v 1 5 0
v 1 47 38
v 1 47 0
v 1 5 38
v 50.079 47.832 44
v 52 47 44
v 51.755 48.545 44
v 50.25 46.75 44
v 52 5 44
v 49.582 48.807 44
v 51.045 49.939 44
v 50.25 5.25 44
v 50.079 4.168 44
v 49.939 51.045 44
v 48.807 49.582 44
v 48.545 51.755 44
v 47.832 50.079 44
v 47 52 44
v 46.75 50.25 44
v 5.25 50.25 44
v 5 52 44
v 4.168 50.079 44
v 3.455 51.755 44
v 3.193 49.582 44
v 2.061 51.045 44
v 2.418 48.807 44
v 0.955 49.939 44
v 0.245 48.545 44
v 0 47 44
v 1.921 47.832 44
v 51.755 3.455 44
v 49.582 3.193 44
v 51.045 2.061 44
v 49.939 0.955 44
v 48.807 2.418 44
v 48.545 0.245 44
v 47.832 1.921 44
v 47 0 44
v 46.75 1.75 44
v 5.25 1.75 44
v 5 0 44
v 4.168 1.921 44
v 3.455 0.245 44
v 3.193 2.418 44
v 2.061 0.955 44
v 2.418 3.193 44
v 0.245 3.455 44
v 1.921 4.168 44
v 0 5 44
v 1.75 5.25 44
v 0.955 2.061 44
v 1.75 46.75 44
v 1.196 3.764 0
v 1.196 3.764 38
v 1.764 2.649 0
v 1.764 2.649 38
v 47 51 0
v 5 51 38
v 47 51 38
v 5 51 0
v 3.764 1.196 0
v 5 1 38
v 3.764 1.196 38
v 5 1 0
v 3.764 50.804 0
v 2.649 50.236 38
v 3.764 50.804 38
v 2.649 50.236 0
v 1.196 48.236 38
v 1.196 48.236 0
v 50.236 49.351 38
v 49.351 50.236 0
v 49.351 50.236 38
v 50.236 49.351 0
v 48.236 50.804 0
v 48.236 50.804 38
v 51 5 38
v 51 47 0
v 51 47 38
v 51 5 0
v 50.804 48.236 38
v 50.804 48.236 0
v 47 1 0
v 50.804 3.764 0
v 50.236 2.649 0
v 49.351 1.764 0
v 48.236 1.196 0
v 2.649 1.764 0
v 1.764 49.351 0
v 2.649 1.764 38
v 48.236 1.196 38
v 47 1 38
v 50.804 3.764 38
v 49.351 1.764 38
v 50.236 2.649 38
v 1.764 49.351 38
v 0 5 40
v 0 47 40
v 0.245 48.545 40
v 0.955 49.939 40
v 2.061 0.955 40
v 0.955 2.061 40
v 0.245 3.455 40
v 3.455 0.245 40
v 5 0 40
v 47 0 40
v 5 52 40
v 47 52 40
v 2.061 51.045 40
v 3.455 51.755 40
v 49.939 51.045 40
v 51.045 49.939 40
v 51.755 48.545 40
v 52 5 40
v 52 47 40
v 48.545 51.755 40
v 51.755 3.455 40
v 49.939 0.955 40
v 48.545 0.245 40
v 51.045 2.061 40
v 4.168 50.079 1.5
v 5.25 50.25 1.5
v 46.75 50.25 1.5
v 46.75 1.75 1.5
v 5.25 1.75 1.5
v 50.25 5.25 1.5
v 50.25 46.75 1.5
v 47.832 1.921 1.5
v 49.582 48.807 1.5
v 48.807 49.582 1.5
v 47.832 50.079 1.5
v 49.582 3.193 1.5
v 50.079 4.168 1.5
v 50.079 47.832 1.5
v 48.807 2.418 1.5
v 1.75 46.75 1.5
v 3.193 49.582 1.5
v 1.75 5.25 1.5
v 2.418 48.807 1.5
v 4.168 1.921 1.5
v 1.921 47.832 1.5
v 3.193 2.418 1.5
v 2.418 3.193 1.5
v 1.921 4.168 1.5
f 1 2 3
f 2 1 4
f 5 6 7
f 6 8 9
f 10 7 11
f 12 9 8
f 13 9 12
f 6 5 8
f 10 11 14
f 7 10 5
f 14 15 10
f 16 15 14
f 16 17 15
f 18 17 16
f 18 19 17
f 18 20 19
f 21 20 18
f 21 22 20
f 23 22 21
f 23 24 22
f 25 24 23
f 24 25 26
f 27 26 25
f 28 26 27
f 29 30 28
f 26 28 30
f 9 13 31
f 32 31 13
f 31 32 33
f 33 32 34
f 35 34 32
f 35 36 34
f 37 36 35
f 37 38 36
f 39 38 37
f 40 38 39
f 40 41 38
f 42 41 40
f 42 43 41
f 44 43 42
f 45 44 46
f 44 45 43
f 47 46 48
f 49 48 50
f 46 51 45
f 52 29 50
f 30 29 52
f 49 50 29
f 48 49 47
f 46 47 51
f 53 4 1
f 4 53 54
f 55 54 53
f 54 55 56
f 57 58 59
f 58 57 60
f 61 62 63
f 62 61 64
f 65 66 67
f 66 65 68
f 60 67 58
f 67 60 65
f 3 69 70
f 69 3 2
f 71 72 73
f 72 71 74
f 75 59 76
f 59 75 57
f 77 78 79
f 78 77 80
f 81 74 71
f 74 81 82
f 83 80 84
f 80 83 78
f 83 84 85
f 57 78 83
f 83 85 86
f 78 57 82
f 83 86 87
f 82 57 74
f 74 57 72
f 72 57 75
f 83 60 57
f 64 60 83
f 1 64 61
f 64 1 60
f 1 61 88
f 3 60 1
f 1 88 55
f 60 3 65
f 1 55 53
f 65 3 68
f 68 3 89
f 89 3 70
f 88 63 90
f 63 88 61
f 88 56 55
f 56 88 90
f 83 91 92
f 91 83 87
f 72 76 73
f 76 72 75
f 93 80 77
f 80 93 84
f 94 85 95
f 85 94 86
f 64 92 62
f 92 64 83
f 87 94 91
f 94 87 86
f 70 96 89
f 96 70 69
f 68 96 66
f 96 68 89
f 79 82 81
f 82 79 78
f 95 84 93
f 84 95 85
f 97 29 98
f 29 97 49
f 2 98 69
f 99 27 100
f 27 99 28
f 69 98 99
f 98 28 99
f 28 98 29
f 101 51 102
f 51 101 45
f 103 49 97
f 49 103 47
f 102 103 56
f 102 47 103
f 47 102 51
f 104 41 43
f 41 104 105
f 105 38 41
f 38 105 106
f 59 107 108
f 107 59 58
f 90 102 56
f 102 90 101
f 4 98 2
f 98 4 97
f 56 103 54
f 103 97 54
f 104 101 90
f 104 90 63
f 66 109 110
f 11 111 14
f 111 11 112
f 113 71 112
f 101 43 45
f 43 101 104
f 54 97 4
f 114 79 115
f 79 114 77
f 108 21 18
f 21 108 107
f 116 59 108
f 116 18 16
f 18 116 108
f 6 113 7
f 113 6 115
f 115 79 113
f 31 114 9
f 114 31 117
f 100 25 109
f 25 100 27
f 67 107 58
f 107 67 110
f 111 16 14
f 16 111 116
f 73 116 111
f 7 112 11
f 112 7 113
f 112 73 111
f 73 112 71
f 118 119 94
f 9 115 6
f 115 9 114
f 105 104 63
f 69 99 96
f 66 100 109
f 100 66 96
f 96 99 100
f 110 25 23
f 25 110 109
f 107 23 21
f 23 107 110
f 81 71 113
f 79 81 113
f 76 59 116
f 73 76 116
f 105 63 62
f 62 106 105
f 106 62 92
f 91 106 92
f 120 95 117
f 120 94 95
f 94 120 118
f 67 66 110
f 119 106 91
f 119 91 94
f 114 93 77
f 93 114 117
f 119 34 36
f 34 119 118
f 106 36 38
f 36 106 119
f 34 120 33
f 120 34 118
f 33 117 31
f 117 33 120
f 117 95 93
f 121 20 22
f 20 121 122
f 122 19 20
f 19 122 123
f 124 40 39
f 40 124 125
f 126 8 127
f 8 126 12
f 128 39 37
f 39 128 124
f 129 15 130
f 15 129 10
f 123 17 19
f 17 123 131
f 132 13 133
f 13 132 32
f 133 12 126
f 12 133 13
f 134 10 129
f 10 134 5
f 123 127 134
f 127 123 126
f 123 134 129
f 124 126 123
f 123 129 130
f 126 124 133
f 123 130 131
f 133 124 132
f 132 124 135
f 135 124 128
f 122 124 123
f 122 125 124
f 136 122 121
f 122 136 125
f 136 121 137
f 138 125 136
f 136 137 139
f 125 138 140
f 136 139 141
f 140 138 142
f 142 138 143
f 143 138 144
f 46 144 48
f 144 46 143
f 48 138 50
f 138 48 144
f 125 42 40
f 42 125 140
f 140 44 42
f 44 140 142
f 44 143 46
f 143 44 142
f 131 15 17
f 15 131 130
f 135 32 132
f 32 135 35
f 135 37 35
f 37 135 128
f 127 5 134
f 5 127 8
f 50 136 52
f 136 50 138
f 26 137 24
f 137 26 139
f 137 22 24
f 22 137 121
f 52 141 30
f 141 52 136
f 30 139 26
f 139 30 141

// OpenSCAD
tray();

module tray(size = [52, 52, 44]) {
    difference() {
        union() {
            tray_box(size = size);
            tray_lip(size = size);
        }
        tray_interior(size = size);
    }
    
    module rounded_rectangle(size, r = 4, $fn = 20) {
        translations = [
            [r,         r,         0],
            [size[0]-r, r,         0],
            [size[0]-r, size[1]-r, 0],
            [r,         size[1]-r, 0]
        ];
    
        hull() {
            for (v = translations) {
                translate(v = v)
                cylinder(h = size[2], r = r);
            }
        }
    }
    
    module tray_box(size, r = 4) {
        translate(v = [1, 1, 0])
        rounded_rectangle(size = [size[0]-2, size[1]-2, size[2]], r = r);
    }
    
    module tray_interior(size, margin = 1.5, r = 3.5) {
        translate(v = [margin/2, margin/2, 1.5])
        tray_box(size = [size[0]-margin, size[1]-margin, size[2]-1], r = r);
    }
    
    module tray_lip(size, height = 4) {
        hull() {
            translate(v = [0, 0, size[2]-height])
            rounded_rectangle(size = [size[0], size[1], height], r = 5);
    
            translate(v = [1, 1, size[2]-height-2])
            rounded_rectangle(size = [size[0]-2, size[1]-2, 1]);
        }
    }
}
